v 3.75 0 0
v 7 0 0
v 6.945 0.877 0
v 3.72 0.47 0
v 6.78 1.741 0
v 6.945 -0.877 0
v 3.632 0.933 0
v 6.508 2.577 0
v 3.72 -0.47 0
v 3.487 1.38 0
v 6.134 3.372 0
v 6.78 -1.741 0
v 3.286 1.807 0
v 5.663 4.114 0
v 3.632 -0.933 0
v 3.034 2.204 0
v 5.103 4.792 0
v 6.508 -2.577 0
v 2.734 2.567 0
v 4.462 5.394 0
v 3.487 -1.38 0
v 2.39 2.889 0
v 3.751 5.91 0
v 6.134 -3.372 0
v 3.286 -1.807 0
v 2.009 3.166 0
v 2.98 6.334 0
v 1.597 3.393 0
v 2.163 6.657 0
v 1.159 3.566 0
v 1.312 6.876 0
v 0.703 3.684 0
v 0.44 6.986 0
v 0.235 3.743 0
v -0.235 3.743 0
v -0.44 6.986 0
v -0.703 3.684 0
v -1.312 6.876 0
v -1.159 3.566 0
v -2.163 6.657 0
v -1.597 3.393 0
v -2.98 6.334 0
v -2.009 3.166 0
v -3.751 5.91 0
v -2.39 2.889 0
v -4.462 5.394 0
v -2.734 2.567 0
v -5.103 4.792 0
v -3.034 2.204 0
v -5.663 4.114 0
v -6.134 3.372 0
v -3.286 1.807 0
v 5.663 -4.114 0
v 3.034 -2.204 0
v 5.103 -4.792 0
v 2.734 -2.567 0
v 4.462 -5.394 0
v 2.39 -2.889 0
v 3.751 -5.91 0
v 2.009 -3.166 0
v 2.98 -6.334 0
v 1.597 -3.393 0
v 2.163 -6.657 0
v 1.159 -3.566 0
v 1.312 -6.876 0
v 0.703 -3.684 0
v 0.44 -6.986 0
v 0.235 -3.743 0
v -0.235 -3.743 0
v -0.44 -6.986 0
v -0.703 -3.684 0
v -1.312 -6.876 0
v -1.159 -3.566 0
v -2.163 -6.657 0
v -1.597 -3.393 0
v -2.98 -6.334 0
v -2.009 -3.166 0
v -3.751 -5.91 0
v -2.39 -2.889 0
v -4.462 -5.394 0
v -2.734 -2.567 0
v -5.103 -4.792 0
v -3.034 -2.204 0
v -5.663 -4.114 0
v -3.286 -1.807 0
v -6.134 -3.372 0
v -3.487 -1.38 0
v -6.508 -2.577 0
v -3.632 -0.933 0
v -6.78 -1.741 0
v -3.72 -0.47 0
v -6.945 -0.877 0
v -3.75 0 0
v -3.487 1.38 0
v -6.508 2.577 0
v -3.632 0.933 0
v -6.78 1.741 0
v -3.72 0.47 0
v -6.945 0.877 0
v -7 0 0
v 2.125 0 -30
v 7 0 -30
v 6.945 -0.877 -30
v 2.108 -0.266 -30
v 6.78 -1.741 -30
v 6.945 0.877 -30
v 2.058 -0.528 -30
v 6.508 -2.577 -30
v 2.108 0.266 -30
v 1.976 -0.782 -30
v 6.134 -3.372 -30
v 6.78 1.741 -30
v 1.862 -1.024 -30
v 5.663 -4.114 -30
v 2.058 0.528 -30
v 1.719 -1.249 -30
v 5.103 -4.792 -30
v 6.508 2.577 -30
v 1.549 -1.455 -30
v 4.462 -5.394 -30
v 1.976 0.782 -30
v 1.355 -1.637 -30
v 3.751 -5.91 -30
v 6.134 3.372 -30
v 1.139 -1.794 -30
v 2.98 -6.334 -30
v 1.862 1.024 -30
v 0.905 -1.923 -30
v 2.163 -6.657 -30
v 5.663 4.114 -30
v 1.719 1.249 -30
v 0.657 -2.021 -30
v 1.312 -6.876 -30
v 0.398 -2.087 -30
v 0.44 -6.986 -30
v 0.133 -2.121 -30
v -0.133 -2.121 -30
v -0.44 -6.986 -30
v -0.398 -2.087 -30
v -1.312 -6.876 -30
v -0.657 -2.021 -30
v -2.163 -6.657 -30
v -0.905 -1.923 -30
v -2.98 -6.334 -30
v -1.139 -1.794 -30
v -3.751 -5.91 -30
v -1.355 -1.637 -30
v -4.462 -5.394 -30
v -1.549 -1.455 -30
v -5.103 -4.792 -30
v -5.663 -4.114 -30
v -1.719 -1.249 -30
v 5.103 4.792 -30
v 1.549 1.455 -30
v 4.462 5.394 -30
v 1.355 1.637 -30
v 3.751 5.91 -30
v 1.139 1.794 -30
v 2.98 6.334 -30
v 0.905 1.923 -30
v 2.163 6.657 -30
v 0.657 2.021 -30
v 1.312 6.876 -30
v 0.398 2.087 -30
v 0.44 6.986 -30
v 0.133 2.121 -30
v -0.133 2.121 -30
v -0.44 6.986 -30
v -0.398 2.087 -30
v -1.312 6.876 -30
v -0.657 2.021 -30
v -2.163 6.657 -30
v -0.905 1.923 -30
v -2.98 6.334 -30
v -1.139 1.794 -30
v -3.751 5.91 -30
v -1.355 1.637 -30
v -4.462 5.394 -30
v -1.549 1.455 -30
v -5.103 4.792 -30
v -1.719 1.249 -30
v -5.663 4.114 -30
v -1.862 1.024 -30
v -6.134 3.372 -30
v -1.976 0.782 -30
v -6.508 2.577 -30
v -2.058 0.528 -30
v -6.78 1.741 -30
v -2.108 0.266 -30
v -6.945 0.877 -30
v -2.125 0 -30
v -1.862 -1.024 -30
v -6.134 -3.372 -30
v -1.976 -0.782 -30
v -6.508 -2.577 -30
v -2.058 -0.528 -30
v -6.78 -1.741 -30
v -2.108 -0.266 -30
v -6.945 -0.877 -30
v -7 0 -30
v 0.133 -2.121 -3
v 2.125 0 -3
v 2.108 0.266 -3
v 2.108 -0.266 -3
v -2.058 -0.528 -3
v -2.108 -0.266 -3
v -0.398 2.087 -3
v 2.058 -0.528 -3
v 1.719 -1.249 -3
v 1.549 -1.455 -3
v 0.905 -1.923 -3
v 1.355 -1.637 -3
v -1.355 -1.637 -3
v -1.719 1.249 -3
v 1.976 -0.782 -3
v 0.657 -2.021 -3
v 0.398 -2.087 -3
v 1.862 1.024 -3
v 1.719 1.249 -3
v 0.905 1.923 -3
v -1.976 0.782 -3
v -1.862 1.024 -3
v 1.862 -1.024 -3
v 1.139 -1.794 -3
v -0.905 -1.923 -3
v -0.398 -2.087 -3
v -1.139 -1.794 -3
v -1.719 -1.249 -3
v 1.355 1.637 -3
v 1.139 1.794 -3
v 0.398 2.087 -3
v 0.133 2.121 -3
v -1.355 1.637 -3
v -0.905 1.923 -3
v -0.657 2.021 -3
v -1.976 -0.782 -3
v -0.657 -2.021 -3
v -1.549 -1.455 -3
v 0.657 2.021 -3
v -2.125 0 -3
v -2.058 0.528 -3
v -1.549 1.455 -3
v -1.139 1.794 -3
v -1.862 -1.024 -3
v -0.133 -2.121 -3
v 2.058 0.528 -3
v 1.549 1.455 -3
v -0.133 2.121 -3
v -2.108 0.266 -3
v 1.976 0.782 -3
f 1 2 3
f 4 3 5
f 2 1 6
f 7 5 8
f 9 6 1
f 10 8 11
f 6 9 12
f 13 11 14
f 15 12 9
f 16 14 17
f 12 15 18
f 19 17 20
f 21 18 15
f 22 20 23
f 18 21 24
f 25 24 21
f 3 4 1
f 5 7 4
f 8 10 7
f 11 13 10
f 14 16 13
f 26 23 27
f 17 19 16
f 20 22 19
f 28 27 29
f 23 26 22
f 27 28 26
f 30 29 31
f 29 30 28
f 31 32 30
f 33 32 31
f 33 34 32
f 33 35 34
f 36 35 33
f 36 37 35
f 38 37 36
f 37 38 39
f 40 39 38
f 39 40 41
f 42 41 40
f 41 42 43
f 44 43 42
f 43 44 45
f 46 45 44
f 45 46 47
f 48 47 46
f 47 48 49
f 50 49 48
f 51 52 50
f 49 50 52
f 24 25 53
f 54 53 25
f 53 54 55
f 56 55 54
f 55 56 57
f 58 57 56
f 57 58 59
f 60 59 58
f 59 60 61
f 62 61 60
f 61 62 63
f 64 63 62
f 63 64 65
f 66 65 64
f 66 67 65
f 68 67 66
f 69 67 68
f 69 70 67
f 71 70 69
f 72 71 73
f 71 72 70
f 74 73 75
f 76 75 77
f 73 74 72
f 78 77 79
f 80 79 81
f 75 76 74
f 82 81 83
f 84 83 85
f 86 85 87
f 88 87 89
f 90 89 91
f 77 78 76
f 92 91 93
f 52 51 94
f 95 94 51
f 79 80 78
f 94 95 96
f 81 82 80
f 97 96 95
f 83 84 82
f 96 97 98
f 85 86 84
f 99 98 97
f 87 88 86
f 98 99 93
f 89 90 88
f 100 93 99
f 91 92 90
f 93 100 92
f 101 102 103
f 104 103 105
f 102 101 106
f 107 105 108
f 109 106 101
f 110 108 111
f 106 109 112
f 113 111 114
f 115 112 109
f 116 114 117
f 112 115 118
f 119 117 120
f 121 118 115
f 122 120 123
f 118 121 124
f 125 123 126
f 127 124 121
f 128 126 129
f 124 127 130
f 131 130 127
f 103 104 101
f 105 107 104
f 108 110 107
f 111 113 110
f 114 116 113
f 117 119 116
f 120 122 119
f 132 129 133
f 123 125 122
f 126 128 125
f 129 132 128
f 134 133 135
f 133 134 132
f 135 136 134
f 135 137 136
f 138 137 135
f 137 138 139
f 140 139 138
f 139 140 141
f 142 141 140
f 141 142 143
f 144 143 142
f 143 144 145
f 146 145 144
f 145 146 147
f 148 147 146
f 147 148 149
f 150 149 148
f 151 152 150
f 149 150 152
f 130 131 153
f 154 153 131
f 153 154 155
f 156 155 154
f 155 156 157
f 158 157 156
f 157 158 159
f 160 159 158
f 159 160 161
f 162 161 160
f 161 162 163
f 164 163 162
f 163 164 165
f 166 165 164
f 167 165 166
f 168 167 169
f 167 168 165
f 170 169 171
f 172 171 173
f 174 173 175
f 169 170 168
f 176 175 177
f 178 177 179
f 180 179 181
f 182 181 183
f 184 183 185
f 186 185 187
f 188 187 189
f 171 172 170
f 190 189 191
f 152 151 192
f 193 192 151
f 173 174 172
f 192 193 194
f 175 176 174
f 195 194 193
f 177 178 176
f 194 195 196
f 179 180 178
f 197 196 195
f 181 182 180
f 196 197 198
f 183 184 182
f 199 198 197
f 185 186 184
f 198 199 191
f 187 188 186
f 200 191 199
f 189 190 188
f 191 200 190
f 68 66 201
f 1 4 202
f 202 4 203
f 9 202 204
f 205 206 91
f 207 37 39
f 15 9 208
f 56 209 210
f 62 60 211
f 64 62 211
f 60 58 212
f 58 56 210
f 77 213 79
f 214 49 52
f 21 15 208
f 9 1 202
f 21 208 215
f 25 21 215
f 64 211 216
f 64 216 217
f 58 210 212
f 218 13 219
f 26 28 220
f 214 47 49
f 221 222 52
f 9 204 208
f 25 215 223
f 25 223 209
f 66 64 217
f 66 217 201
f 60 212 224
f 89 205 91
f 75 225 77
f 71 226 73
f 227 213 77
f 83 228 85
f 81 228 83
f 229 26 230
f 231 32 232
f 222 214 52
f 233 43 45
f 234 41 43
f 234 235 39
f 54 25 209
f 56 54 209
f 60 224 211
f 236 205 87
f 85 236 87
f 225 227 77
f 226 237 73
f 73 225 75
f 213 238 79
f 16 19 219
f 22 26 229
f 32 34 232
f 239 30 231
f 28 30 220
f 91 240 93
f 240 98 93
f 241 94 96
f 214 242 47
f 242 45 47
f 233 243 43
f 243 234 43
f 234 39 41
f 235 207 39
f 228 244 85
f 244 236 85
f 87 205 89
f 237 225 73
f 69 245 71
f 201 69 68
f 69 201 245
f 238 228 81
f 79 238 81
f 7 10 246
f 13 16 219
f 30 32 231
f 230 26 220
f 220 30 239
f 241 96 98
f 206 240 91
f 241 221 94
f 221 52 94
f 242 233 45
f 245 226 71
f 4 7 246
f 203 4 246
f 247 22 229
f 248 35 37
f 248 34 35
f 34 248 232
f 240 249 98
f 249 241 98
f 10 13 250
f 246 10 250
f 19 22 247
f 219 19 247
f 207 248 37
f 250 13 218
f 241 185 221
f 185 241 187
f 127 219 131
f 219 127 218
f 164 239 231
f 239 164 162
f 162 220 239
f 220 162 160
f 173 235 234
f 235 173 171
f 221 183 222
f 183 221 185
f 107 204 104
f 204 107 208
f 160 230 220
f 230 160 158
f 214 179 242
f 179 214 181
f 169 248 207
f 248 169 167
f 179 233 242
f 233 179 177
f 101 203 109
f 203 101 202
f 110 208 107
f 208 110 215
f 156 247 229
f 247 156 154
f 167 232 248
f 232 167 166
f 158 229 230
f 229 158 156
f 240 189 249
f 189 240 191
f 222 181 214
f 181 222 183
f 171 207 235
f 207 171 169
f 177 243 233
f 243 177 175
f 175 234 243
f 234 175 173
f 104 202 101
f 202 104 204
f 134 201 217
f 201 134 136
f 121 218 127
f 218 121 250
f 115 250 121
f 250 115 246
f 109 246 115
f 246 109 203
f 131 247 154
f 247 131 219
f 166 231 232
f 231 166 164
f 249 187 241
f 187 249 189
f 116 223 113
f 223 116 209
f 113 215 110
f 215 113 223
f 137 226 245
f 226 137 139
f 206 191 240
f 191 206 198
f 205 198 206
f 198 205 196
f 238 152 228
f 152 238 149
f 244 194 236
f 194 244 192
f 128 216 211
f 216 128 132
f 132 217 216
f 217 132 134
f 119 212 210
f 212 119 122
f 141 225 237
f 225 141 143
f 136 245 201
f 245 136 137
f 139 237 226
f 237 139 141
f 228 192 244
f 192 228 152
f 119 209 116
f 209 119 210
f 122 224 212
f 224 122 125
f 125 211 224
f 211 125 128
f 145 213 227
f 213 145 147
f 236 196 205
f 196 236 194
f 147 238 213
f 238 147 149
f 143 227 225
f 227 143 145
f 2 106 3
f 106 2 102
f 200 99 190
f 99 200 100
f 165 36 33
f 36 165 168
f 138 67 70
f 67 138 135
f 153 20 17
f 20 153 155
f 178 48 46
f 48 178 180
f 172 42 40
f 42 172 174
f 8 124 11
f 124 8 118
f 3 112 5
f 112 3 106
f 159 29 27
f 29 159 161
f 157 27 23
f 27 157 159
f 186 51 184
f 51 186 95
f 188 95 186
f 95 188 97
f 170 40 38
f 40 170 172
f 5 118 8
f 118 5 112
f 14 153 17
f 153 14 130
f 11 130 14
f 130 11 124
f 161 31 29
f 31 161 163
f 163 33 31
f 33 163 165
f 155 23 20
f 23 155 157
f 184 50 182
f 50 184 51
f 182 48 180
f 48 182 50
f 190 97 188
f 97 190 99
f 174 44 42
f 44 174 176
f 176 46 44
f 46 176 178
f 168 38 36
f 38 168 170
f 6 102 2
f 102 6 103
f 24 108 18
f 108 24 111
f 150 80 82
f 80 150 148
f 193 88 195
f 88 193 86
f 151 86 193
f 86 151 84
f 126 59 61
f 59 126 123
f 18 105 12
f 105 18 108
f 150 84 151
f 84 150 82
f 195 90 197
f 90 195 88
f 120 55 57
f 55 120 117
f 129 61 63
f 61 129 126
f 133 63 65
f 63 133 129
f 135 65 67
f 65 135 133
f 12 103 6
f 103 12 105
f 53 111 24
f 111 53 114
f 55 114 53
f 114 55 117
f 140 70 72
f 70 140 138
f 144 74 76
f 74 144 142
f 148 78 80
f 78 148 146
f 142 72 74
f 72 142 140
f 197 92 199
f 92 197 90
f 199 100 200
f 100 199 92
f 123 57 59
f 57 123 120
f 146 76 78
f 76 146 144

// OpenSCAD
$fn = 50;


difference() {
	union() {
		translate(v = [0, 0, -30.0000000000]) {
			cylinder(h = 30, r = 7.0000000000);
		}
		cylinder(h = 0, r = 13.0000000000);
	}
	union() {
		translate(v = [0, 0, 0]) {
			rotate(a = [0, 0, 0]) {
				difference() {
					union() {
						#translate(v = [0, 0, -30.0000000000]) {
							cylinder(h = 30, r = 2.0000000000);
						}
						#translate(v = [0, 0, -3]) {
							cylinder(h = 3, r1 = 2.1250000000, r2 = 3.7500000000);
						}
						#translate(v = [0, 0, -30.0000000000]) {
							cylinder(h = 30, r = 2.1250000000);
						}
						#translate(v = [0, 0, -30.0000000000]) {
							cylinder(h = 30, r = 2.0000000000);
						}
					}
					union();
				}
			}
		}
	}
}
